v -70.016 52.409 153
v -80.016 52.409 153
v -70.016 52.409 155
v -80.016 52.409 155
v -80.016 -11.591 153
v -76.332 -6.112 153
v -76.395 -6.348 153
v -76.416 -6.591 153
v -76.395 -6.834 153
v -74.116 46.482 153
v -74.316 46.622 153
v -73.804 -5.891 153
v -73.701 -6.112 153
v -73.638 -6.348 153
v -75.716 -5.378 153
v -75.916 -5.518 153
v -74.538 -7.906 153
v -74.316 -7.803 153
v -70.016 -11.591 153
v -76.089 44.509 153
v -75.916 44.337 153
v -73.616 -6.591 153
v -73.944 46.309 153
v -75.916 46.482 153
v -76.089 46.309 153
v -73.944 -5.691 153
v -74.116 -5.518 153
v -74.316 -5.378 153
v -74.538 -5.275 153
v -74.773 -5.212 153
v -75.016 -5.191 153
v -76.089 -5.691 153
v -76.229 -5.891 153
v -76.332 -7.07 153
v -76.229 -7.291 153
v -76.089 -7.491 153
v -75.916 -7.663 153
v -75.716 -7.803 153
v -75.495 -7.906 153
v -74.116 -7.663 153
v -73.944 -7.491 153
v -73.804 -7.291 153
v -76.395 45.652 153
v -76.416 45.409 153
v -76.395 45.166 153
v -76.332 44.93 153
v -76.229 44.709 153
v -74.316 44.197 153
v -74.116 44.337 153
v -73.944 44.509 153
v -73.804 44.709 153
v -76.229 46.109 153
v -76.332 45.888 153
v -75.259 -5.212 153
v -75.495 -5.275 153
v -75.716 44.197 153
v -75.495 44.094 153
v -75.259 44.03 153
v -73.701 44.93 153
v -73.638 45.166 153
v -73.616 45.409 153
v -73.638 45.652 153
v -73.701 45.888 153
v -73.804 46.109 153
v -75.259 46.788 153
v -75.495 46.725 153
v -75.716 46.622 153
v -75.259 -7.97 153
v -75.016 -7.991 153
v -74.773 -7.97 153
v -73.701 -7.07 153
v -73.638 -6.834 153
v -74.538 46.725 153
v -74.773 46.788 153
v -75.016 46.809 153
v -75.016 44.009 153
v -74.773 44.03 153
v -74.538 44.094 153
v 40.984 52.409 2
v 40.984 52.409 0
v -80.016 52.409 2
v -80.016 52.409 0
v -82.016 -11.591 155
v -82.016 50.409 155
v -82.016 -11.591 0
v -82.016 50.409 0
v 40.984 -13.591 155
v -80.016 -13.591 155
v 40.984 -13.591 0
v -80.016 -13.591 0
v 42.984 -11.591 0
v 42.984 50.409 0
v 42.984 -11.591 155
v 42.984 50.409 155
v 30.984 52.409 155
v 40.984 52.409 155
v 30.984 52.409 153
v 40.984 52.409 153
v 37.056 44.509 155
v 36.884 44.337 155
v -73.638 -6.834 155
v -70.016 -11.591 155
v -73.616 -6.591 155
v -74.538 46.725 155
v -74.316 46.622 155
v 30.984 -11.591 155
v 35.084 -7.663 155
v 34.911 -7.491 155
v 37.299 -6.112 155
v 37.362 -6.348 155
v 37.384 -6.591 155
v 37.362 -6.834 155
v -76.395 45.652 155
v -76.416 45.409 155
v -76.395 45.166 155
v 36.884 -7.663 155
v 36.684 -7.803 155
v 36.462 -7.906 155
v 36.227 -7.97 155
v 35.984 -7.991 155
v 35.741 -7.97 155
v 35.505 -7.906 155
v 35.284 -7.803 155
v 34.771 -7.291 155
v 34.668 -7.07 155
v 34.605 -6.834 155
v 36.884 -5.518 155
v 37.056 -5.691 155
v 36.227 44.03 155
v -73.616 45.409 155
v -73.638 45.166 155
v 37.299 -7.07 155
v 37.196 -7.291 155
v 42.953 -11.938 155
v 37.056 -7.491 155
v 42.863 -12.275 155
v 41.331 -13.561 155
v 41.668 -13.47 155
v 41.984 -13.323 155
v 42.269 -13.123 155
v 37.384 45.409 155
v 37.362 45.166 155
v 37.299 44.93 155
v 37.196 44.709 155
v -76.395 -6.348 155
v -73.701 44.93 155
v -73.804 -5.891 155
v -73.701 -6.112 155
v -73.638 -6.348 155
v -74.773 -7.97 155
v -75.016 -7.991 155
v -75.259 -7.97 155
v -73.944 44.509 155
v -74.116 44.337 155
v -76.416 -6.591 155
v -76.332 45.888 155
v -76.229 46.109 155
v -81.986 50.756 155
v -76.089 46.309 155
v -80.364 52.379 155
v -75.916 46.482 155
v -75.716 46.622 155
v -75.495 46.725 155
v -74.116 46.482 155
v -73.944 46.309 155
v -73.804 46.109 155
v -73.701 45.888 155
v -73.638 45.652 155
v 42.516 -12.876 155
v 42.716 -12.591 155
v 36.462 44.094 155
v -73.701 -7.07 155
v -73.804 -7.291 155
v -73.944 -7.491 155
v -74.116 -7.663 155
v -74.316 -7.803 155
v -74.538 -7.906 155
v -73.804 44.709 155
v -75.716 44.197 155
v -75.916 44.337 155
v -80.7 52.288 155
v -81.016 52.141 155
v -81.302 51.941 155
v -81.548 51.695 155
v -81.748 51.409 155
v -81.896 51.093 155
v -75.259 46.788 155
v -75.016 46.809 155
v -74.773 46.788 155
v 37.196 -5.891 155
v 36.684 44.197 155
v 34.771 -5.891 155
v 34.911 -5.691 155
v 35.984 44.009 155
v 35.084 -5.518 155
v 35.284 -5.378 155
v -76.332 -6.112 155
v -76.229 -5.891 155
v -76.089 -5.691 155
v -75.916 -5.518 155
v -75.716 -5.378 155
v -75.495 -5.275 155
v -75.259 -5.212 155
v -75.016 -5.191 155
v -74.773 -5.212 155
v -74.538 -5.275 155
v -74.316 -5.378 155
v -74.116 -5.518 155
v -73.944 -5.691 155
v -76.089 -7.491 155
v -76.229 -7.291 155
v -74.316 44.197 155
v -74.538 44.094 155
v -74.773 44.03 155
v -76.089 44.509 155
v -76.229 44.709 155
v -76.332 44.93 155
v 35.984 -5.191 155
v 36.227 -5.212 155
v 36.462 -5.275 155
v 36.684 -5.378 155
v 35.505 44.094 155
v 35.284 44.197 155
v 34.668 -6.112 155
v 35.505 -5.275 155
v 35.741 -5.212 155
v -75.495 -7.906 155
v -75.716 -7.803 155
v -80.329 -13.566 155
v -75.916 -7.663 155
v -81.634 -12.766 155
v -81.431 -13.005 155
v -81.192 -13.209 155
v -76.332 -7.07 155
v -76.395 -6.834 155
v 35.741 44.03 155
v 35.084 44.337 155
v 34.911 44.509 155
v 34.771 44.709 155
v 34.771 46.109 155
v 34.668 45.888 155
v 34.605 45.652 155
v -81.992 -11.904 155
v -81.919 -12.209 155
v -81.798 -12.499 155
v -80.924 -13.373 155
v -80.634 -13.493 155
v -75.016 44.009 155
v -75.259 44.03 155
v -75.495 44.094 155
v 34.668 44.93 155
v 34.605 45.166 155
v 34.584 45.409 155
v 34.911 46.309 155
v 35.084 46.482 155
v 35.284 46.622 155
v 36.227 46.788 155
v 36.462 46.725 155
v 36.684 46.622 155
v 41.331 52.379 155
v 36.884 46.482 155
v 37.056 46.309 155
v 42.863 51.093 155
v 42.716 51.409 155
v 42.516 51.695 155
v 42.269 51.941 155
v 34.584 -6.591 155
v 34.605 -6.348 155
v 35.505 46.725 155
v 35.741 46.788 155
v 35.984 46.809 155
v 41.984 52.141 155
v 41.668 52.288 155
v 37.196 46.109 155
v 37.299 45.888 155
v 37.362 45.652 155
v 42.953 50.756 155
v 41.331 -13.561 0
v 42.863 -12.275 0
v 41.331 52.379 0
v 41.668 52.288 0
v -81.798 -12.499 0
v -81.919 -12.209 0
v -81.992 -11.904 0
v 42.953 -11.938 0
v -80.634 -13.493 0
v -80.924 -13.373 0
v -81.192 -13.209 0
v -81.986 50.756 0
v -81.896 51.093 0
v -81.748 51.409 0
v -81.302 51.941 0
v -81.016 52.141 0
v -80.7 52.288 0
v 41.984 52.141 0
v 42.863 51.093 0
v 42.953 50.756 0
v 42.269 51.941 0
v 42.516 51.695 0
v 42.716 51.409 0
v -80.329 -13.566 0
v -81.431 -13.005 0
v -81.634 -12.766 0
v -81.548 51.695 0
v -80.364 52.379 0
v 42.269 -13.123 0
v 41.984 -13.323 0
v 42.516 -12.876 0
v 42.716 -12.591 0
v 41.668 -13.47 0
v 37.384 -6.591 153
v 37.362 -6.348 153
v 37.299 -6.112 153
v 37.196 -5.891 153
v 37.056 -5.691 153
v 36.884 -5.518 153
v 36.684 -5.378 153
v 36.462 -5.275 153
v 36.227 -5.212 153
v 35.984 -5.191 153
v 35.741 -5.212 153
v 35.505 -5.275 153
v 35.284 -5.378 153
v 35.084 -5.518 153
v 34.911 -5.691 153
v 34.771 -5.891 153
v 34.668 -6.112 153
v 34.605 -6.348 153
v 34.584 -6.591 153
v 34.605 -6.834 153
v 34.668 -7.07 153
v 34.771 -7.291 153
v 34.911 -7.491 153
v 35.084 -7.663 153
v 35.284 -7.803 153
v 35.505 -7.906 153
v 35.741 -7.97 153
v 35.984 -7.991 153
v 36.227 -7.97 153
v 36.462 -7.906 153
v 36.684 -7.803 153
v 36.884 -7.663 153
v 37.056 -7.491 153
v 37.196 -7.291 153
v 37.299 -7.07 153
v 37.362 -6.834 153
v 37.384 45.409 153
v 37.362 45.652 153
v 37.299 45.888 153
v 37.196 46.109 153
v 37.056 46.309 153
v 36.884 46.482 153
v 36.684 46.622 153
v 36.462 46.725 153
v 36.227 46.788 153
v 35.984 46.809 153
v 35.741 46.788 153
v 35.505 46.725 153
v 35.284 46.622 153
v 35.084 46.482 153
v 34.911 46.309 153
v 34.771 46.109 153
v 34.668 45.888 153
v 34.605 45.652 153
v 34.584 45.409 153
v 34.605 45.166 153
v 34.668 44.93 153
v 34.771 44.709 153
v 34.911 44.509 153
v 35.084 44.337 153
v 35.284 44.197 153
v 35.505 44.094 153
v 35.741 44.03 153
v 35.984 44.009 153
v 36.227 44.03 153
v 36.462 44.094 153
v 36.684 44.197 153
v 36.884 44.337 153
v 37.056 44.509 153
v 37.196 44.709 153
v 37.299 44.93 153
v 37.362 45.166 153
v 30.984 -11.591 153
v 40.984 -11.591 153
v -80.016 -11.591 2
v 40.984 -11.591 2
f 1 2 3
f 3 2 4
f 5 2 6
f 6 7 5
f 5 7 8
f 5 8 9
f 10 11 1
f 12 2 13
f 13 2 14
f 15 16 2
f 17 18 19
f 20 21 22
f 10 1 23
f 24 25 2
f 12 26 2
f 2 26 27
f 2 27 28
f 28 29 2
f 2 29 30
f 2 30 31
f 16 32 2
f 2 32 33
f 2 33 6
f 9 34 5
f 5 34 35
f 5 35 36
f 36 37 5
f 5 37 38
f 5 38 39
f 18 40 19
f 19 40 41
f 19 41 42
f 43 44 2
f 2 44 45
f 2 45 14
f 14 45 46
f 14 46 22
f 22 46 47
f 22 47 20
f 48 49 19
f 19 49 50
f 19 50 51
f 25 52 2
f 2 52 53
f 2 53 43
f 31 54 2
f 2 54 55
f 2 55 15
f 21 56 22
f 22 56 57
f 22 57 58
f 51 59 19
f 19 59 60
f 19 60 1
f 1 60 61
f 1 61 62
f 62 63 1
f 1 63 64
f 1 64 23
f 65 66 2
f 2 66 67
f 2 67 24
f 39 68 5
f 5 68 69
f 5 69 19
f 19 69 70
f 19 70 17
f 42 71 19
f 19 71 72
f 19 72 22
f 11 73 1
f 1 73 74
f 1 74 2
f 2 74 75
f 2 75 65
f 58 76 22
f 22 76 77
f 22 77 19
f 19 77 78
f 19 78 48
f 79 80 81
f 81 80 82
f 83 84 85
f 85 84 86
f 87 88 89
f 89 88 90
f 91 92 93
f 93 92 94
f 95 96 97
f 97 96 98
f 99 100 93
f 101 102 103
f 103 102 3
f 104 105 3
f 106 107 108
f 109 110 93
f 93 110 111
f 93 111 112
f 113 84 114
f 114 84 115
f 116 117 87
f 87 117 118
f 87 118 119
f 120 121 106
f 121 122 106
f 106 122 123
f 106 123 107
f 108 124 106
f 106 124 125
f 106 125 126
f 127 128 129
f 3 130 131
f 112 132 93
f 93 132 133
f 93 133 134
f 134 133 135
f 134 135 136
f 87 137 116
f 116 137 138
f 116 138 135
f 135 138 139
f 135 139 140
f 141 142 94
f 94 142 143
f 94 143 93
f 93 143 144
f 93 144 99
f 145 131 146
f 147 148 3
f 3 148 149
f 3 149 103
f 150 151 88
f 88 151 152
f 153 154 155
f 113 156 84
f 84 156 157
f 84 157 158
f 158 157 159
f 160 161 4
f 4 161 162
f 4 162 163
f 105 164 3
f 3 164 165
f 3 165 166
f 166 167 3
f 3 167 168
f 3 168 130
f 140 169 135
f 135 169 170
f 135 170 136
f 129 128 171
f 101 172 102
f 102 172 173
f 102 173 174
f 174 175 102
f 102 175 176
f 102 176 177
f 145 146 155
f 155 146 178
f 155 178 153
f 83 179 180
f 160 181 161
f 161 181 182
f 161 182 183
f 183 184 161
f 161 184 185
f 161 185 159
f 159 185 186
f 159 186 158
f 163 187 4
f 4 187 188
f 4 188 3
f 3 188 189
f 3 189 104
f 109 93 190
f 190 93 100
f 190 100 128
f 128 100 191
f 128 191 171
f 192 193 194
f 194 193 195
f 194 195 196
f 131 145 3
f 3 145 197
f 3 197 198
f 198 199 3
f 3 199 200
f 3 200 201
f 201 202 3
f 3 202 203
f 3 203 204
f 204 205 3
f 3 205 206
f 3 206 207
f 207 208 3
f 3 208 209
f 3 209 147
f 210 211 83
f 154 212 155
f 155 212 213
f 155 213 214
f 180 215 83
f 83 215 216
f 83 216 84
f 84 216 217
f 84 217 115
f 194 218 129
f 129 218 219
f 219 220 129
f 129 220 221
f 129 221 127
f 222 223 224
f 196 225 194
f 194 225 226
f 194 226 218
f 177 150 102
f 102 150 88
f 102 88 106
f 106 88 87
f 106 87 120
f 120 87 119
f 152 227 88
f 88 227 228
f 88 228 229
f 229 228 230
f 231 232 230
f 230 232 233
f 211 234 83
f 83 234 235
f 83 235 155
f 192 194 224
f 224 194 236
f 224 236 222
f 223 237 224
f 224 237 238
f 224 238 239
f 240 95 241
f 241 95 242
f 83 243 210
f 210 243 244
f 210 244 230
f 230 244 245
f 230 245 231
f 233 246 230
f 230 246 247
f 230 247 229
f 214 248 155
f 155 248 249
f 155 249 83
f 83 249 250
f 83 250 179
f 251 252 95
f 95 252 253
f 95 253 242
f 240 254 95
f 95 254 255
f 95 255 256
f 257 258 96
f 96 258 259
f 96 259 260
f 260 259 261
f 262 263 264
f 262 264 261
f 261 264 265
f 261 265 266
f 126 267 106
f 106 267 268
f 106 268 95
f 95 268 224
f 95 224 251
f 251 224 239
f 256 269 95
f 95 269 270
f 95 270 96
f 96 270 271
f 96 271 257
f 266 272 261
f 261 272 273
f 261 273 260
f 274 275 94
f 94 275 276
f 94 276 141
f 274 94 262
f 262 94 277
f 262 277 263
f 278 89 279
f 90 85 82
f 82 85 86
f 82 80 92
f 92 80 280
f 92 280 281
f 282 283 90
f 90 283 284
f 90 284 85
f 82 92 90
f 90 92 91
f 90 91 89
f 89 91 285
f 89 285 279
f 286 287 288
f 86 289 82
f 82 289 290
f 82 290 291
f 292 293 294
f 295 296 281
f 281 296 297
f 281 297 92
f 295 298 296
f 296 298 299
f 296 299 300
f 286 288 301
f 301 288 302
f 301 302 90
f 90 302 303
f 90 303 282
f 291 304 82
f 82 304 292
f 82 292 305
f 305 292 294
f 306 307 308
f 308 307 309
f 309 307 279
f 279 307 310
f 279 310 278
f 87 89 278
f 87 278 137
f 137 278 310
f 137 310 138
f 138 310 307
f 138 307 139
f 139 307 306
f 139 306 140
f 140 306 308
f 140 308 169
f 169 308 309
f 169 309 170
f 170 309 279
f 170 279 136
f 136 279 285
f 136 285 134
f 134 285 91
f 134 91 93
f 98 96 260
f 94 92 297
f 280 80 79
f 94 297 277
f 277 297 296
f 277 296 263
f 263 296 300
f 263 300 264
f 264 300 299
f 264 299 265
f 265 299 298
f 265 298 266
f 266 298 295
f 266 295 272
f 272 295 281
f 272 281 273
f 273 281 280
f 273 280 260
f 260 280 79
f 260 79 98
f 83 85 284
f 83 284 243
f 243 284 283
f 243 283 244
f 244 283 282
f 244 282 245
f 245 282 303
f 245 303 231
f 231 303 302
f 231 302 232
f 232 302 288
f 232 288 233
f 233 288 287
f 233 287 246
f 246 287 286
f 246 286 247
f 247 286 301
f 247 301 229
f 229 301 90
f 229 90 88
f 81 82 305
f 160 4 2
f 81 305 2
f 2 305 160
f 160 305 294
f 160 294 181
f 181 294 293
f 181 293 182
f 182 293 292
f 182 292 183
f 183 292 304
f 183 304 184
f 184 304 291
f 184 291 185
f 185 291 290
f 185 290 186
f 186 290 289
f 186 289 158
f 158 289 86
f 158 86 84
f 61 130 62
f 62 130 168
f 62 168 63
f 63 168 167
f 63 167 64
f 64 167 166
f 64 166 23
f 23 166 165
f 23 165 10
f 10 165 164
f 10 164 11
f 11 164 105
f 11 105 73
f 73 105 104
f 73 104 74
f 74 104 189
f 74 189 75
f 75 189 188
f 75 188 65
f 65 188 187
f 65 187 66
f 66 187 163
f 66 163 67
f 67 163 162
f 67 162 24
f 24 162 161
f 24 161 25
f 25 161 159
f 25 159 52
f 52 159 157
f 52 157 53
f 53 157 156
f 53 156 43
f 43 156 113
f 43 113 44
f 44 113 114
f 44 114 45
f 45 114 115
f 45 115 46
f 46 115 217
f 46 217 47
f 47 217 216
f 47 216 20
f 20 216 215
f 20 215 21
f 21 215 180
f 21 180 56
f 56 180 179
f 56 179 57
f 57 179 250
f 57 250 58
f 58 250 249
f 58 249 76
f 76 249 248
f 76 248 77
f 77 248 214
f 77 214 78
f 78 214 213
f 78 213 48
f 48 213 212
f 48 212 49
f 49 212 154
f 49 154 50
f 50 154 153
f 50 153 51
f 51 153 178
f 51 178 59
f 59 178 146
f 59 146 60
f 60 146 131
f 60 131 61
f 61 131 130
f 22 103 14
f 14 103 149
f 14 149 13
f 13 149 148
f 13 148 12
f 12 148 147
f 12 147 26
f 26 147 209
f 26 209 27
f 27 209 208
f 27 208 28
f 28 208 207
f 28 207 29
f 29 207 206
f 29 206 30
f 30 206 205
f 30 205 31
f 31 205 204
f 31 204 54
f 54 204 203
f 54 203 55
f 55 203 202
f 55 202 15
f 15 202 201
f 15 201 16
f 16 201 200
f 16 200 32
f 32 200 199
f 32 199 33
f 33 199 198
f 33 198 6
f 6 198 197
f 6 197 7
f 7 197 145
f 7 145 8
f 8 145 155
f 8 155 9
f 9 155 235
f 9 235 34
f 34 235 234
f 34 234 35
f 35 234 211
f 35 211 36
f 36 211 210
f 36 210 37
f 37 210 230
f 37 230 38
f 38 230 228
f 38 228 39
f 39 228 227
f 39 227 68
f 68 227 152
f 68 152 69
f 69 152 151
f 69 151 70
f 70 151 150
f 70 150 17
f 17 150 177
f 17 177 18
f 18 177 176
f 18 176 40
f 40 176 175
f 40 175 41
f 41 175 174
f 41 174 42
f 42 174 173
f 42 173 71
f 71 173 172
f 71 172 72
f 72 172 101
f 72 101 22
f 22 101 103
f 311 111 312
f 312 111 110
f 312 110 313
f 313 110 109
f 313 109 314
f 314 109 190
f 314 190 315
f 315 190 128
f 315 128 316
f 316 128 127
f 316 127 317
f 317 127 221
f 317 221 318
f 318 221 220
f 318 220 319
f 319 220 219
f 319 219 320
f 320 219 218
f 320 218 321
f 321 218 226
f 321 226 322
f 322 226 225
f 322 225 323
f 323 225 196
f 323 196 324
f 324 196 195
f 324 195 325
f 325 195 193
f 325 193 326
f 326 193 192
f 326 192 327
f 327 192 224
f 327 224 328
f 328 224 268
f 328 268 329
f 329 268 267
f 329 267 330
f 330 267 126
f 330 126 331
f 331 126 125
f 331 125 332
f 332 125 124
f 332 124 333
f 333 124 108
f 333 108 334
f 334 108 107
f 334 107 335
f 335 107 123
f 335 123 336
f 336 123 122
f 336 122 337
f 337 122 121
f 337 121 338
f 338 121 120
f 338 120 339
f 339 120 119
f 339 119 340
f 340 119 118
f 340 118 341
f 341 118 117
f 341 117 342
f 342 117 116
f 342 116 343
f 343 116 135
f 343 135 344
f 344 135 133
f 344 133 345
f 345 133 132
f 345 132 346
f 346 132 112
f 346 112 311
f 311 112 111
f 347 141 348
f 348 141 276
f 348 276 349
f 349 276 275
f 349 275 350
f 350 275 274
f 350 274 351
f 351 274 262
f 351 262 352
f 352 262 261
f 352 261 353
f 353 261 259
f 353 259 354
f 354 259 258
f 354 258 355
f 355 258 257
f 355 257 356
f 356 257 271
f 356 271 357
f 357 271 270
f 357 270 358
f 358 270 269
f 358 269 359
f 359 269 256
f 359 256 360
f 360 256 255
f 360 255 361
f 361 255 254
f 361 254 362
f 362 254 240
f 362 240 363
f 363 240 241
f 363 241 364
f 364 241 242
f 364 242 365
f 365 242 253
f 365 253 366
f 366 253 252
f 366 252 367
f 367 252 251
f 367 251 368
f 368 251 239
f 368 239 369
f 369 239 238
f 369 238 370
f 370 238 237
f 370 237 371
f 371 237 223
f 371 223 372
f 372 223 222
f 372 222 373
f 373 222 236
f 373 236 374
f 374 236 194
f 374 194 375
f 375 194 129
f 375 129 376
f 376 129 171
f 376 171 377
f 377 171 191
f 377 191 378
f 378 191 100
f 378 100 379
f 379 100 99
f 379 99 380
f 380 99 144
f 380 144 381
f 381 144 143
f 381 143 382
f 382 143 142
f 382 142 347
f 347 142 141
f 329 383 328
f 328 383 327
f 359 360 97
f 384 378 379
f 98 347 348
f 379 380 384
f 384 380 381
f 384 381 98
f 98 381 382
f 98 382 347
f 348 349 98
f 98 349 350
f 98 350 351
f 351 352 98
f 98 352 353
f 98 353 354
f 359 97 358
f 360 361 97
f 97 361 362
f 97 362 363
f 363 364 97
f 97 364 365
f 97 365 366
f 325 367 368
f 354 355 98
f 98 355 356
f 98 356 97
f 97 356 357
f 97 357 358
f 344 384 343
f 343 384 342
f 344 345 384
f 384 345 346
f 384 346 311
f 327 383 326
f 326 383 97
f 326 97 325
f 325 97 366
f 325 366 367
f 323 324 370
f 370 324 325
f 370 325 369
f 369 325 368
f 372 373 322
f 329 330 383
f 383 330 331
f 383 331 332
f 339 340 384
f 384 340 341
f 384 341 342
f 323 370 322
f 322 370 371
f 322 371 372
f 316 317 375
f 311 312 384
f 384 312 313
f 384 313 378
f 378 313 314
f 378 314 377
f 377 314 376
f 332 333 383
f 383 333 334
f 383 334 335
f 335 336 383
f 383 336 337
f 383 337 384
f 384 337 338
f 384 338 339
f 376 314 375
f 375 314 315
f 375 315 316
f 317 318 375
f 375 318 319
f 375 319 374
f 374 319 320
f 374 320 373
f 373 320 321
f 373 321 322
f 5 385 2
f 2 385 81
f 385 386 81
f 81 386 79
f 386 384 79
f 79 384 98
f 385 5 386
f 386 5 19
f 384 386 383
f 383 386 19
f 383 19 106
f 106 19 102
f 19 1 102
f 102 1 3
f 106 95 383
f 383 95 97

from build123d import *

# Parameters (mm, degrees)
SKETCH1_W           = 125
SKETCH1_H           = 66
BOSS_EXTRUDE1_DEPTH = 155
FILLET1_R           = 2
SKETCH7_R           = 1.4
CUT_EXTRUDE4_DEPTH  = 15
SKETCH4_W           = 121
SKETCH4_H           = 151
CUT_EXTRUDE5_DEPTH  = 64
SKETCH8_W           = 101
SKETCH8_H           = 64.031377795
CUT_EXTRUDE6_DEPTH  = 64


with BuildPart() as part:
    # Sketch1 → Boss-Extrude1 (new body)
    with BuildSketch(Plane.XY):
        with Locations((-19.516389056, 19.409080835)):
            Rectangle(SKETCH1_W, SKETCH1_H)
    extrude(amount=BOSS_EXTRUDE1_DEPTH)

    # Fillet1
    fillet1_edges = [part.edges().sort_by_distance(p)[0] for p in [
        (-82.016389056, 52.409080835, 77.5),
        (42.983610944, 52.409080835, 77.5),
        (42.983610944, -13.590919165, 77.5),
        (-82.016389056, -13.590919165, 77.5),
    ]]
    fillet(fillet1_edges, radius=FILLET1_R)

    # Sketch7 → Cut-Extrude4 (cut)
    with BuildSketch(Plane.XY.offset(155)):
        with Locations((-75.016389056, 45.409080835)):
            Circle(SKETCH7_R)
        with Locations((-75.016389056, -6.590919165)):
            Circle(SKETCH7_R)
        with Locations((35.983610944, -6.590919165)):
            Circle(SKETCH7_R)
        with Locations((35.983610944, 45.409080835)):
            Circle(SKETCH7_R)
    extrude(amount=-CUT_EXTRUDE4_DEPTH, mode=Mode.SUBTRACT)

    # Sketch4 → Cut-Extrude5 (cut)
    with BuildSketch(Plane(origin=(0, 52.409080835, 0), x_dir=(1, 0, 0), z_dir=(0, 1, 0))):
        with Locations((-19.516389056, -77.5)):
            Rectangle(SKETCH4_W, SKETCH4_H)
    extrude(amount=-CUT_EXTRUDE5_DEPTH, mode=Mode.SUBTRACT)

    # Sketch8 → Cut-Extrude6 (cut)
    with BuildSketch(Plane.XY.offset(155)):
        with Locations((-19.516389056, 20.424769732)):
            Rectangle(SKETCH8_W, SKETCH8_H)
    extrude(amount=-CUT_EXTRUDE6_DEPTH, mode=Mode.SUBTRACT)


solid = part.part
